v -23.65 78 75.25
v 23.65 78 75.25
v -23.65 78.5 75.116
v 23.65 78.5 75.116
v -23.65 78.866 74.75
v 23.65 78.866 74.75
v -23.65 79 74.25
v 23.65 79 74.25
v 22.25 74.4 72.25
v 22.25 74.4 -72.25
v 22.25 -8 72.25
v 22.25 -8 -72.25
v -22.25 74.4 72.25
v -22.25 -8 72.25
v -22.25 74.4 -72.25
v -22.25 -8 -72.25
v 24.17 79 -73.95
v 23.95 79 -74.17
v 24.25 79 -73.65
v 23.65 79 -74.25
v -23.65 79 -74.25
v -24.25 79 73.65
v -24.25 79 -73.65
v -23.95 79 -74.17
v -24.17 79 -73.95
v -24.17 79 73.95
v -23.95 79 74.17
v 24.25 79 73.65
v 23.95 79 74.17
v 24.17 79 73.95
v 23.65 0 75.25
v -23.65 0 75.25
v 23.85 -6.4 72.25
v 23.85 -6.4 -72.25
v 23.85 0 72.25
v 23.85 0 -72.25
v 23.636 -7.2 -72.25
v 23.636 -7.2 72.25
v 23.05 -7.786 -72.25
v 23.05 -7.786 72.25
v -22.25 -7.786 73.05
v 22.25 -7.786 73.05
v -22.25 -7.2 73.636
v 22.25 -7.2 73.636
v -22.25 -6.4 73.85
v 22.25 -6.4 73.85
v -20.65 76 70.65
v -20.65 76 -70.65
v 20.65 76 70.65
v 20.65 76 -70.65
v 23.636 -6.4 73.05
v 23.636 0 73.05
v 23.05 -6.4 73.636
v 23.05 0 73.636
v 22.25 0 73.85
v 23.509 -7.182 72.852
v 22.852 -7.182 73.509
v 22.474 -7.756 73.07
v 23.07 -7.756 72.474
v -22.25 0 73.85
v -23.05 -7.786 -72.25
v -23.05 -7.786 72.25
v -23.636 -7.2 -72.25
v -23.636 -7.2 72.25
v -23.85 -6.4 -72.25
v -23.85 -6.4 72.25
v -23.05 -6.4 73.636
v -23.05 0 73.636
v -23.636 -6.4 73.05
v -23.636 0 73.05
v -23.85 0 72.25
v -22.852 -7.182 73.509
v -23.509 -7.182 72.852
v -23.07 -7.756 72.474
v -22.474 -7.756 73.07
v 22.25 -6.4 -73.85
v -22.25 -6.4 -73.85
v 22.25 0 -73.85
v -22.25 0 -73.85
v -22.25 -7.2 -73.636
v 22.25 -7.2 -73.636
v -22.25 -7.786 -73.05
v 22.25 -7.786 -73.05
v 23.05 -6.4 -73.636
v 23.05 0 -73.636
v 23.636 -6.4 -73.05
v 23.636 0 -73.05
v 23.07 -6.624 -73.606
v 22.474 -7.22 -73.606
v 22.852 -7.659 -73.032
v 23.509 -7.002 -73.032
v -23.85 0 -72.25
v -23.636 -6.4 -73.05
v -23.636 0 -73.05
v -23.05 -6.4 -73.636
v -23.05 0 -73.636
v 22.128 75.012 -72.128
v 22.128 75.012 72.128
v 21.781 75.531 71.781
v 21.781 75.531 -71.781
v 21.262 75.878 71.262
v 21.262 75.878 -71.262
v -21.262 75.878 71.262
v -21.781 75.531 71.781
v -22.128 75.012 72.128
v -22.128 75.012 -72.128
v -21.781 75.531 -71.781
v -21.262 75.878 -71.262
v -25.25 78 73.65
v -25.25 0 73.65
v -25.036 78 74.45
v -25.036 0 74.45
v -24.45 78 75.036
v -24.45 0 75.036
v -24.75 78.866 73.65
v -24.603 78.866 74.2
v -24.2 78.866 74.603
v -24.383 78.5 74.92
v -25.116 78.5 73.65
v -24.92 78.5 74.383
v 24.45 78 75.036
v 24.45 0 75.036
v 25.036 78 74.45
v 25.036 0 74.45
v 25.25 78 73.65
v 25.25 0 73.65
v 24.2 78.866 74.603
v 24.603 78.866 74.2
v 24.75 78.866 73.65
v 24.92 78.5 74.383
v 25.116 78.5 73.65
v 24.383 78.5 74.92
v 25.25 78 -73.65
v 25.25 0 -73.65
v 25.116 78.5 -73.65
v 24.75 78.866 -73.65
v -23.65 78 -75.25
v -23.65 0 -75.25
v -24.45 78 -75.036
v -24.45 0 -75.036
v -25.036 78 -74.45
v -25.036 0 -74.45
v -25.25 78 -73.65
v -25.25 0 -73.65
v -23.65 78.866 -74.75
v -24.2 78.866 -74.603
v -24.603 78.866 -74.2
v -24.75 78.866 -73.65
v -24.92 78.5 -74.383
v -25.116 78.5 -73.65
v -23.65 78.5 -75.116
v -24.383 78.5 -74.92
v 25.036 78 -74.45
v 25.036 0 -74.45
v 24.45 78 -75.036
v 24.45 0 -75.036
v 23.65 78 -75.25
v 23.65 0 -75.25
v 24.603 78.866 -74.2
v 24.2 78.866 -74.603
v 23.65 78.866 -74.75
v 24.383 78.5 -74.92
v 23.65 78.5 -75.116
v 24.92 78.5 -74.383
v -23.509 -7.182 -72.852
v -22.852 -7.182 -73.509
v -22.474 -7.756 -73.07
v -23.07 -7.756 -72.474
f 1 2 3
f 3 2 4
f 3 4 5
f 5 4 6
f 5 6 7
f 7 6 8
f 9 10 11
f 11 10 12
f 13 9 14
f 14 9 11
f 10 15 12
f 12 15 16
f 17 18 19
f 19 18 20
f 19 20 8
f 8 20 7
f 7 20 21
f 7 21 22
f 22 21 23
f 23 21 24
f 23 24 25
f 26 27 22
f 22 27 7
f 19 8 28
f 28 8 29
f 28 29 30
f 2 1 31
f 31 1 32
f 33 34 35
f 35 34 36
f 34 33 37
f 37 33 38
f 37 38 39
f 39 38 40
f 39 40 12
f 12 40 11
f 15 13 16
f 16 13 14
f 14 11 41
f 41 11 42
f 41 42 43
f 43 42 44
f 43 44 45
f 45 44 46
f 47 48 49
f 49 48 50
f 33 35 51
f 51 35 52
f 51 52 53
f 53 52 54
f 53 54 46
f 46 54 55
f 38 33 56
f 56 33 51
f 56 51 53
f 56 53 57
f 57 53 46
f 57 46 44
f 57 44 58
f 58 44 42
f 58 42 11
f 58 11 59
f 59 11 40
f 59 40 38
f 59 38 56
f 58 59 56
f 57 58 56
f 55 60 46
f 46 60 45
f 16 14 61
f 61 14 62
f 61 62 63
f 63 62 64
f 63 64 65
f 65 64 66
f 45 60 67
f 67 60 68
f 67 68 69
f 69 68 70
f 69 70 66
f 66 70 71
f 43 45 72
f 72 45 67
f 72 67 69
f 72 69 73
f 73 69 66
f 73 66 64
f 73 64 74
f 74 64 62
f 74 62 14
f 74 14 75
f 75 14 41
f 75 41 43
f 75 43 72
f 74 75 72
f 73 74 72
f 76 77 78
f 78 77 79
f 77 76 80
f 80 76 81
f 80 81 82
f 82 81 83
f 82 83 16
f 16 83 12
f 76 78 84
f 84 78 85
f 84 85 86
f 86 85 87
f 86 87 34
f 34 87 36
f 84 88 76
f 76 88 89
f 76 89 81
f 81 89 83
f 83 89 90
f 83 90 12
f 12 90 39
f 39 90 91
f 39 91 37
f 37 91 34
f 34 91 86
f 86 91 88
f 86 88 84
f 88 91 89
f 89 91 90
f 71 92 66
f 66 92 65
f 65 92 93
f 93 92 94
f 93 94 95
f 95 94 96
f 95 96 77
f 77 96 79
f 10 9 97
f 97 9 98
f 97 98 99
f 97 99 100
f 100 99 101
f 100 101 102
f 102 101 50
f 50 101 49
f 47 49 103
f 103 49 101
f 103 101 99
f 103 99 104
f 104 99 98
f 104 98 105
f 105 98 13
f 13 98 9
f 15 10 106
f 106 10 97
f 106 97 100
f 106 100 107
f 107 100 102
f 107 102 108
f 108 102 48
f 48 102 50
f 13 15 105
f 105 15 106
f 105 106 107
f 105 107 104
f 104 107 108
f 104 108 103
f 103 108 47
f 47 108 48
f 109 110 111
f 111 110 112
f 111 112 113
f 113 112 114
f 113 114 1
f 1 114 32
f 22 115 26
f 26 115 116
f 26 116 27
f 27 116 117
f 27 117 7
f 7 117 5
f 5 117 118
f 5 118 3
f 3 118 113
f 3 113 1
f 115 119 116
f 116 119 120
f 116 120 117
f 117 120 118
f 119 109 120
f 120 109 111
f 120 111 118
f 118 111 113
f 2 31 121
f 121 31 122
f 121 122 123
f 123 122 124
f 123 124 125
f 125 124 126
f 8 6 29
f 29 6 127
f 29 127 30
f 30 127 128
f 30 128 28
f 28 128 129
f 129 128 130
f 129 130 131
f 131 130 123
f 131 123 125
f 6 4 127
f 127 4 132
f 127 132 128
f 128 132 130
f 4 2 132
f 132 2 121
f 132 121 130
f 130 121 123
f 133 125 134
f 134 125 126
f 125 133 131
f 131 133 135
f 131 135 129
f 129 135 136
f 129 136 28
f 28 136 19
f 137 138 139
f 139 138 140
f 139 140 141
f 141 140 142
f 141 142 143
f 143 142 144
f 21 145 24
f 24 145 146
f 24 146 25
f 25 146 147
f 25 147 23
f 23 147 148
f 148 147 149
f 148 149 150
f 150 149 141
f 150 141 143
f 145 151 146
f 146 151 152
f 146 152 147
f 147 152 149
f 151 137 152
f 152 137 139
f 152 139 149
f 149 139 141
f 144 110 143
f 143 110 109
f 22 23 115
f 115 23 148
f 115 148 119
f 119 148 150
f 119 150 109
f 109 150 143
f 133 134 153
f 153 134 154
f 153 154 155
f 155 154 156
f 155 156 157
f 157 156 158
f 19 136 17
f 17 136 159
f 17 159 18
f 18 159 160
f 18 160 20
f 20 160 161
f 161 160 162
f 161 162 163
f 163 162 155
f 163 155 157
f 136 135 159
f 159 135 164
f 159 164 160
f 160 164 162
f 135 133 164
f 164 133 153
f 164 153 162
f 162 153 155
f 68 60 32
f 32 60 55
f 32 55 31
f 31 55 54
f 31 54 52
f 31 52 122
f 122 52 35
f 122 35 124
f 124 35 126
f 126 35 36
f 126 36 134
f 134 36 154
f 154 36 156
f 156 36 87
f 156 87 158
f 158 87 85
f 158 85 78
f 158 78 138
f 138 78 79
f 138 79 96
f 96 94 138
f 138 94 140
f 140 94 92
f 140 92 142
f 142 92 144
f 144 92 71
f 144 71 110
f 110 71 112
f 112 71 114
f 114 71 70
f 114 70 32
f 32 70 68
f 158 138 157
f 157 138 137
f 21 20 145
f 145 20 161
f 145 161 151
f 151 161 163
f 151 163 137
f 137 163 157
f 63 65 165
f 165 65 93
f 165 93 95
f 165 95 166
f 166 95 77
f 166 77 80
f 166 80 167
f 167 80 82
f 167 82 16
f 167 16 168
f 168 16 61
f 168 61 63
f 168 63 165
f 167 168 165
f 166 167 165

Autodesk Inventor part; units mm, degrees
ref_plane "YZ Plane" through (0, 0, 0) normal (1, 0, 0) x (0, 1, 0)
ref_plane "XZ Plane" through (0, 0, 0) normal (0, 1, 0) x (-1, 0, 0)
ref_plane "XY Plane" through (0, 0, 0) normal (0, 0, 1) x (1, 0, 0)
sketch "Boceto1" plane through (0, 0, 0) normal (0, 1, 0) x (-1, 0, 0)
  line L0 (-25.25, 75.25) -> (25.25, 75.25)
  line L1 (25.25, 75.25) -> (25.25, -75.25)
  line L2 (25.25, -75.25) -> (-25.25, -75.25)
  line L3 (-25.25, -75.25) -> (-25.25, 75.25)
  line L4 (-25.25, 75.25) -> (25.25, -75.25) construction
  line L5 (25.25, 75.25) -> (-25.25, -75.25) construction
  line L6 (22.25, -72.25) -> (22.25, 72.25)
  line L7 (22.25, 72.25) -> (-22.25, 72.25)
  line L8 (-22.25, 72.25) -> (-22.25, -72.25)
  line L9 (-22.25, -72.25) -> (22.25, -72.25)
  point P0 (0, 0)
  dimension "d0" = 50.5
  dimension "d1" = 150.5
  dimension "d2" = 3
  dimension "d3" = 44.5
extrude "Extrusión1" add sketch "Boceto1" along normal blind 79
sketch "Boceto2" plane through (0, 79, 0) normal (0, 1, 0) x (1, 0, 0)
  line L0 (-22.25, -72.25) -> (-22.25, 72.25) projected
  line L1 (25.25, 75.25) -> (-25.25, 75.25) projected
  line L2 (-25.25, 75.25) -> (-25.25, -75.25) projected
  line L3 (-25.25, -75.25) -> (25.25, -75.25) projected
  line L4 (25.25, -75.25) -> (25.25, 75.25) projected
  line L5 (-22.25, 72.25) -> (22.25, 72.25) projected
  line L6 (22.25, 72.25) -> (22.25, -72.25) projected
  line L7 (22.25, -72.25) -> (-22.25, -72.25) projected
  line L8 (-22.25, -72.25) -> (-22.25, 72.25) projected
  point P0 (0, 0)
  point P1 (-22.25, 72.25)
extrude "Extrusión2" add sketch "Boceto2" against normal blind 3 contours L0 L5 L6 L7
fillet "Empalme1" radius 1 4 edges at (0, 79, 75.25) (25.25, 79, 0) (-25.25, 79, 0) (0, 79, -75.25)
sketch "Boceto3" plane through (0, 0, 0) normal (0, -1, 0) x (1, 0, 0)
  line L0 (25.25, -75.25) -> (-25.25, -75.25) projected
  line L1 (25.25, 75.25) -> (25.25, -75.25) projected
  line L2 (-25.25, 75.25) -> (25.25, 75.25) projected
  line L3 (-25.25, -75.25) -> (-25.25, 75.25) projected
  line L4 (-22.25, -72.25) -> (22.25, -72.25) projected
  line L5 (-22.25, 72.25) -> (-22.25, -72.25) projected
  line L6 (22.25, 72.25) -> (-22.25, 72.25) projected
  line L7 (22.25, -72.25) -> (22.25, 72.25) projected
  line L8 (23.85, 73.85) -> (-23.85, 73.85)
  line L9 (-23.85, 73.85) -> (-23.85, -73.85)
  line L10 (-23.85, -73.85) -> (23.85, -73.85)
  line L11 (23.85, -73.85) -> (23.85, 73.85)
  point P0 (0, 0)
  dimension "d9" = 1.6
extrude "Extrusión3" add sketch "Boceto3" along normal blind 8 contours L11 L10 L9 L8
fillet "Empalme2" radius 1.6 4 edges at (-23.85, -8, 0) (0, -8, 73.85) (23.85, -8, 0) (0, -8, -73.85)
fillet "Empalme3" radius 1.6 4 edges at (22.25, 76, 0) (0, 76, 72.25) (0, 76, -72.25) (-22.25, 76, 0)
fillet "Empalme4" radius 1.6 16 edges at (-24.9571, 78.7071, 74.9571) (-25.25, 39, 75.25) (24.9571, 78.7071, 74.9571) (25.25, 39, 75.25) (-24.9571, 78.7071, -74.9571) (-25.25, 39, -75.25) (24.9571, 78.7071, -74.9571) (25.25, 39, -75.25) (-23.3814, -7.5314, -73.3814) (-23.85, -3.2001, -73.85) (23.3814, -7.5314, -73.3814) (23.85, -3.2001, -73.85) (-23.3814, -7.5314, 73.3814) (-23.85, -3.2001, 73.85) (23.3814, -7.5314, 73.3814) (23.85, -3.2001, 73.85)
properties part number "Caja bateria"
